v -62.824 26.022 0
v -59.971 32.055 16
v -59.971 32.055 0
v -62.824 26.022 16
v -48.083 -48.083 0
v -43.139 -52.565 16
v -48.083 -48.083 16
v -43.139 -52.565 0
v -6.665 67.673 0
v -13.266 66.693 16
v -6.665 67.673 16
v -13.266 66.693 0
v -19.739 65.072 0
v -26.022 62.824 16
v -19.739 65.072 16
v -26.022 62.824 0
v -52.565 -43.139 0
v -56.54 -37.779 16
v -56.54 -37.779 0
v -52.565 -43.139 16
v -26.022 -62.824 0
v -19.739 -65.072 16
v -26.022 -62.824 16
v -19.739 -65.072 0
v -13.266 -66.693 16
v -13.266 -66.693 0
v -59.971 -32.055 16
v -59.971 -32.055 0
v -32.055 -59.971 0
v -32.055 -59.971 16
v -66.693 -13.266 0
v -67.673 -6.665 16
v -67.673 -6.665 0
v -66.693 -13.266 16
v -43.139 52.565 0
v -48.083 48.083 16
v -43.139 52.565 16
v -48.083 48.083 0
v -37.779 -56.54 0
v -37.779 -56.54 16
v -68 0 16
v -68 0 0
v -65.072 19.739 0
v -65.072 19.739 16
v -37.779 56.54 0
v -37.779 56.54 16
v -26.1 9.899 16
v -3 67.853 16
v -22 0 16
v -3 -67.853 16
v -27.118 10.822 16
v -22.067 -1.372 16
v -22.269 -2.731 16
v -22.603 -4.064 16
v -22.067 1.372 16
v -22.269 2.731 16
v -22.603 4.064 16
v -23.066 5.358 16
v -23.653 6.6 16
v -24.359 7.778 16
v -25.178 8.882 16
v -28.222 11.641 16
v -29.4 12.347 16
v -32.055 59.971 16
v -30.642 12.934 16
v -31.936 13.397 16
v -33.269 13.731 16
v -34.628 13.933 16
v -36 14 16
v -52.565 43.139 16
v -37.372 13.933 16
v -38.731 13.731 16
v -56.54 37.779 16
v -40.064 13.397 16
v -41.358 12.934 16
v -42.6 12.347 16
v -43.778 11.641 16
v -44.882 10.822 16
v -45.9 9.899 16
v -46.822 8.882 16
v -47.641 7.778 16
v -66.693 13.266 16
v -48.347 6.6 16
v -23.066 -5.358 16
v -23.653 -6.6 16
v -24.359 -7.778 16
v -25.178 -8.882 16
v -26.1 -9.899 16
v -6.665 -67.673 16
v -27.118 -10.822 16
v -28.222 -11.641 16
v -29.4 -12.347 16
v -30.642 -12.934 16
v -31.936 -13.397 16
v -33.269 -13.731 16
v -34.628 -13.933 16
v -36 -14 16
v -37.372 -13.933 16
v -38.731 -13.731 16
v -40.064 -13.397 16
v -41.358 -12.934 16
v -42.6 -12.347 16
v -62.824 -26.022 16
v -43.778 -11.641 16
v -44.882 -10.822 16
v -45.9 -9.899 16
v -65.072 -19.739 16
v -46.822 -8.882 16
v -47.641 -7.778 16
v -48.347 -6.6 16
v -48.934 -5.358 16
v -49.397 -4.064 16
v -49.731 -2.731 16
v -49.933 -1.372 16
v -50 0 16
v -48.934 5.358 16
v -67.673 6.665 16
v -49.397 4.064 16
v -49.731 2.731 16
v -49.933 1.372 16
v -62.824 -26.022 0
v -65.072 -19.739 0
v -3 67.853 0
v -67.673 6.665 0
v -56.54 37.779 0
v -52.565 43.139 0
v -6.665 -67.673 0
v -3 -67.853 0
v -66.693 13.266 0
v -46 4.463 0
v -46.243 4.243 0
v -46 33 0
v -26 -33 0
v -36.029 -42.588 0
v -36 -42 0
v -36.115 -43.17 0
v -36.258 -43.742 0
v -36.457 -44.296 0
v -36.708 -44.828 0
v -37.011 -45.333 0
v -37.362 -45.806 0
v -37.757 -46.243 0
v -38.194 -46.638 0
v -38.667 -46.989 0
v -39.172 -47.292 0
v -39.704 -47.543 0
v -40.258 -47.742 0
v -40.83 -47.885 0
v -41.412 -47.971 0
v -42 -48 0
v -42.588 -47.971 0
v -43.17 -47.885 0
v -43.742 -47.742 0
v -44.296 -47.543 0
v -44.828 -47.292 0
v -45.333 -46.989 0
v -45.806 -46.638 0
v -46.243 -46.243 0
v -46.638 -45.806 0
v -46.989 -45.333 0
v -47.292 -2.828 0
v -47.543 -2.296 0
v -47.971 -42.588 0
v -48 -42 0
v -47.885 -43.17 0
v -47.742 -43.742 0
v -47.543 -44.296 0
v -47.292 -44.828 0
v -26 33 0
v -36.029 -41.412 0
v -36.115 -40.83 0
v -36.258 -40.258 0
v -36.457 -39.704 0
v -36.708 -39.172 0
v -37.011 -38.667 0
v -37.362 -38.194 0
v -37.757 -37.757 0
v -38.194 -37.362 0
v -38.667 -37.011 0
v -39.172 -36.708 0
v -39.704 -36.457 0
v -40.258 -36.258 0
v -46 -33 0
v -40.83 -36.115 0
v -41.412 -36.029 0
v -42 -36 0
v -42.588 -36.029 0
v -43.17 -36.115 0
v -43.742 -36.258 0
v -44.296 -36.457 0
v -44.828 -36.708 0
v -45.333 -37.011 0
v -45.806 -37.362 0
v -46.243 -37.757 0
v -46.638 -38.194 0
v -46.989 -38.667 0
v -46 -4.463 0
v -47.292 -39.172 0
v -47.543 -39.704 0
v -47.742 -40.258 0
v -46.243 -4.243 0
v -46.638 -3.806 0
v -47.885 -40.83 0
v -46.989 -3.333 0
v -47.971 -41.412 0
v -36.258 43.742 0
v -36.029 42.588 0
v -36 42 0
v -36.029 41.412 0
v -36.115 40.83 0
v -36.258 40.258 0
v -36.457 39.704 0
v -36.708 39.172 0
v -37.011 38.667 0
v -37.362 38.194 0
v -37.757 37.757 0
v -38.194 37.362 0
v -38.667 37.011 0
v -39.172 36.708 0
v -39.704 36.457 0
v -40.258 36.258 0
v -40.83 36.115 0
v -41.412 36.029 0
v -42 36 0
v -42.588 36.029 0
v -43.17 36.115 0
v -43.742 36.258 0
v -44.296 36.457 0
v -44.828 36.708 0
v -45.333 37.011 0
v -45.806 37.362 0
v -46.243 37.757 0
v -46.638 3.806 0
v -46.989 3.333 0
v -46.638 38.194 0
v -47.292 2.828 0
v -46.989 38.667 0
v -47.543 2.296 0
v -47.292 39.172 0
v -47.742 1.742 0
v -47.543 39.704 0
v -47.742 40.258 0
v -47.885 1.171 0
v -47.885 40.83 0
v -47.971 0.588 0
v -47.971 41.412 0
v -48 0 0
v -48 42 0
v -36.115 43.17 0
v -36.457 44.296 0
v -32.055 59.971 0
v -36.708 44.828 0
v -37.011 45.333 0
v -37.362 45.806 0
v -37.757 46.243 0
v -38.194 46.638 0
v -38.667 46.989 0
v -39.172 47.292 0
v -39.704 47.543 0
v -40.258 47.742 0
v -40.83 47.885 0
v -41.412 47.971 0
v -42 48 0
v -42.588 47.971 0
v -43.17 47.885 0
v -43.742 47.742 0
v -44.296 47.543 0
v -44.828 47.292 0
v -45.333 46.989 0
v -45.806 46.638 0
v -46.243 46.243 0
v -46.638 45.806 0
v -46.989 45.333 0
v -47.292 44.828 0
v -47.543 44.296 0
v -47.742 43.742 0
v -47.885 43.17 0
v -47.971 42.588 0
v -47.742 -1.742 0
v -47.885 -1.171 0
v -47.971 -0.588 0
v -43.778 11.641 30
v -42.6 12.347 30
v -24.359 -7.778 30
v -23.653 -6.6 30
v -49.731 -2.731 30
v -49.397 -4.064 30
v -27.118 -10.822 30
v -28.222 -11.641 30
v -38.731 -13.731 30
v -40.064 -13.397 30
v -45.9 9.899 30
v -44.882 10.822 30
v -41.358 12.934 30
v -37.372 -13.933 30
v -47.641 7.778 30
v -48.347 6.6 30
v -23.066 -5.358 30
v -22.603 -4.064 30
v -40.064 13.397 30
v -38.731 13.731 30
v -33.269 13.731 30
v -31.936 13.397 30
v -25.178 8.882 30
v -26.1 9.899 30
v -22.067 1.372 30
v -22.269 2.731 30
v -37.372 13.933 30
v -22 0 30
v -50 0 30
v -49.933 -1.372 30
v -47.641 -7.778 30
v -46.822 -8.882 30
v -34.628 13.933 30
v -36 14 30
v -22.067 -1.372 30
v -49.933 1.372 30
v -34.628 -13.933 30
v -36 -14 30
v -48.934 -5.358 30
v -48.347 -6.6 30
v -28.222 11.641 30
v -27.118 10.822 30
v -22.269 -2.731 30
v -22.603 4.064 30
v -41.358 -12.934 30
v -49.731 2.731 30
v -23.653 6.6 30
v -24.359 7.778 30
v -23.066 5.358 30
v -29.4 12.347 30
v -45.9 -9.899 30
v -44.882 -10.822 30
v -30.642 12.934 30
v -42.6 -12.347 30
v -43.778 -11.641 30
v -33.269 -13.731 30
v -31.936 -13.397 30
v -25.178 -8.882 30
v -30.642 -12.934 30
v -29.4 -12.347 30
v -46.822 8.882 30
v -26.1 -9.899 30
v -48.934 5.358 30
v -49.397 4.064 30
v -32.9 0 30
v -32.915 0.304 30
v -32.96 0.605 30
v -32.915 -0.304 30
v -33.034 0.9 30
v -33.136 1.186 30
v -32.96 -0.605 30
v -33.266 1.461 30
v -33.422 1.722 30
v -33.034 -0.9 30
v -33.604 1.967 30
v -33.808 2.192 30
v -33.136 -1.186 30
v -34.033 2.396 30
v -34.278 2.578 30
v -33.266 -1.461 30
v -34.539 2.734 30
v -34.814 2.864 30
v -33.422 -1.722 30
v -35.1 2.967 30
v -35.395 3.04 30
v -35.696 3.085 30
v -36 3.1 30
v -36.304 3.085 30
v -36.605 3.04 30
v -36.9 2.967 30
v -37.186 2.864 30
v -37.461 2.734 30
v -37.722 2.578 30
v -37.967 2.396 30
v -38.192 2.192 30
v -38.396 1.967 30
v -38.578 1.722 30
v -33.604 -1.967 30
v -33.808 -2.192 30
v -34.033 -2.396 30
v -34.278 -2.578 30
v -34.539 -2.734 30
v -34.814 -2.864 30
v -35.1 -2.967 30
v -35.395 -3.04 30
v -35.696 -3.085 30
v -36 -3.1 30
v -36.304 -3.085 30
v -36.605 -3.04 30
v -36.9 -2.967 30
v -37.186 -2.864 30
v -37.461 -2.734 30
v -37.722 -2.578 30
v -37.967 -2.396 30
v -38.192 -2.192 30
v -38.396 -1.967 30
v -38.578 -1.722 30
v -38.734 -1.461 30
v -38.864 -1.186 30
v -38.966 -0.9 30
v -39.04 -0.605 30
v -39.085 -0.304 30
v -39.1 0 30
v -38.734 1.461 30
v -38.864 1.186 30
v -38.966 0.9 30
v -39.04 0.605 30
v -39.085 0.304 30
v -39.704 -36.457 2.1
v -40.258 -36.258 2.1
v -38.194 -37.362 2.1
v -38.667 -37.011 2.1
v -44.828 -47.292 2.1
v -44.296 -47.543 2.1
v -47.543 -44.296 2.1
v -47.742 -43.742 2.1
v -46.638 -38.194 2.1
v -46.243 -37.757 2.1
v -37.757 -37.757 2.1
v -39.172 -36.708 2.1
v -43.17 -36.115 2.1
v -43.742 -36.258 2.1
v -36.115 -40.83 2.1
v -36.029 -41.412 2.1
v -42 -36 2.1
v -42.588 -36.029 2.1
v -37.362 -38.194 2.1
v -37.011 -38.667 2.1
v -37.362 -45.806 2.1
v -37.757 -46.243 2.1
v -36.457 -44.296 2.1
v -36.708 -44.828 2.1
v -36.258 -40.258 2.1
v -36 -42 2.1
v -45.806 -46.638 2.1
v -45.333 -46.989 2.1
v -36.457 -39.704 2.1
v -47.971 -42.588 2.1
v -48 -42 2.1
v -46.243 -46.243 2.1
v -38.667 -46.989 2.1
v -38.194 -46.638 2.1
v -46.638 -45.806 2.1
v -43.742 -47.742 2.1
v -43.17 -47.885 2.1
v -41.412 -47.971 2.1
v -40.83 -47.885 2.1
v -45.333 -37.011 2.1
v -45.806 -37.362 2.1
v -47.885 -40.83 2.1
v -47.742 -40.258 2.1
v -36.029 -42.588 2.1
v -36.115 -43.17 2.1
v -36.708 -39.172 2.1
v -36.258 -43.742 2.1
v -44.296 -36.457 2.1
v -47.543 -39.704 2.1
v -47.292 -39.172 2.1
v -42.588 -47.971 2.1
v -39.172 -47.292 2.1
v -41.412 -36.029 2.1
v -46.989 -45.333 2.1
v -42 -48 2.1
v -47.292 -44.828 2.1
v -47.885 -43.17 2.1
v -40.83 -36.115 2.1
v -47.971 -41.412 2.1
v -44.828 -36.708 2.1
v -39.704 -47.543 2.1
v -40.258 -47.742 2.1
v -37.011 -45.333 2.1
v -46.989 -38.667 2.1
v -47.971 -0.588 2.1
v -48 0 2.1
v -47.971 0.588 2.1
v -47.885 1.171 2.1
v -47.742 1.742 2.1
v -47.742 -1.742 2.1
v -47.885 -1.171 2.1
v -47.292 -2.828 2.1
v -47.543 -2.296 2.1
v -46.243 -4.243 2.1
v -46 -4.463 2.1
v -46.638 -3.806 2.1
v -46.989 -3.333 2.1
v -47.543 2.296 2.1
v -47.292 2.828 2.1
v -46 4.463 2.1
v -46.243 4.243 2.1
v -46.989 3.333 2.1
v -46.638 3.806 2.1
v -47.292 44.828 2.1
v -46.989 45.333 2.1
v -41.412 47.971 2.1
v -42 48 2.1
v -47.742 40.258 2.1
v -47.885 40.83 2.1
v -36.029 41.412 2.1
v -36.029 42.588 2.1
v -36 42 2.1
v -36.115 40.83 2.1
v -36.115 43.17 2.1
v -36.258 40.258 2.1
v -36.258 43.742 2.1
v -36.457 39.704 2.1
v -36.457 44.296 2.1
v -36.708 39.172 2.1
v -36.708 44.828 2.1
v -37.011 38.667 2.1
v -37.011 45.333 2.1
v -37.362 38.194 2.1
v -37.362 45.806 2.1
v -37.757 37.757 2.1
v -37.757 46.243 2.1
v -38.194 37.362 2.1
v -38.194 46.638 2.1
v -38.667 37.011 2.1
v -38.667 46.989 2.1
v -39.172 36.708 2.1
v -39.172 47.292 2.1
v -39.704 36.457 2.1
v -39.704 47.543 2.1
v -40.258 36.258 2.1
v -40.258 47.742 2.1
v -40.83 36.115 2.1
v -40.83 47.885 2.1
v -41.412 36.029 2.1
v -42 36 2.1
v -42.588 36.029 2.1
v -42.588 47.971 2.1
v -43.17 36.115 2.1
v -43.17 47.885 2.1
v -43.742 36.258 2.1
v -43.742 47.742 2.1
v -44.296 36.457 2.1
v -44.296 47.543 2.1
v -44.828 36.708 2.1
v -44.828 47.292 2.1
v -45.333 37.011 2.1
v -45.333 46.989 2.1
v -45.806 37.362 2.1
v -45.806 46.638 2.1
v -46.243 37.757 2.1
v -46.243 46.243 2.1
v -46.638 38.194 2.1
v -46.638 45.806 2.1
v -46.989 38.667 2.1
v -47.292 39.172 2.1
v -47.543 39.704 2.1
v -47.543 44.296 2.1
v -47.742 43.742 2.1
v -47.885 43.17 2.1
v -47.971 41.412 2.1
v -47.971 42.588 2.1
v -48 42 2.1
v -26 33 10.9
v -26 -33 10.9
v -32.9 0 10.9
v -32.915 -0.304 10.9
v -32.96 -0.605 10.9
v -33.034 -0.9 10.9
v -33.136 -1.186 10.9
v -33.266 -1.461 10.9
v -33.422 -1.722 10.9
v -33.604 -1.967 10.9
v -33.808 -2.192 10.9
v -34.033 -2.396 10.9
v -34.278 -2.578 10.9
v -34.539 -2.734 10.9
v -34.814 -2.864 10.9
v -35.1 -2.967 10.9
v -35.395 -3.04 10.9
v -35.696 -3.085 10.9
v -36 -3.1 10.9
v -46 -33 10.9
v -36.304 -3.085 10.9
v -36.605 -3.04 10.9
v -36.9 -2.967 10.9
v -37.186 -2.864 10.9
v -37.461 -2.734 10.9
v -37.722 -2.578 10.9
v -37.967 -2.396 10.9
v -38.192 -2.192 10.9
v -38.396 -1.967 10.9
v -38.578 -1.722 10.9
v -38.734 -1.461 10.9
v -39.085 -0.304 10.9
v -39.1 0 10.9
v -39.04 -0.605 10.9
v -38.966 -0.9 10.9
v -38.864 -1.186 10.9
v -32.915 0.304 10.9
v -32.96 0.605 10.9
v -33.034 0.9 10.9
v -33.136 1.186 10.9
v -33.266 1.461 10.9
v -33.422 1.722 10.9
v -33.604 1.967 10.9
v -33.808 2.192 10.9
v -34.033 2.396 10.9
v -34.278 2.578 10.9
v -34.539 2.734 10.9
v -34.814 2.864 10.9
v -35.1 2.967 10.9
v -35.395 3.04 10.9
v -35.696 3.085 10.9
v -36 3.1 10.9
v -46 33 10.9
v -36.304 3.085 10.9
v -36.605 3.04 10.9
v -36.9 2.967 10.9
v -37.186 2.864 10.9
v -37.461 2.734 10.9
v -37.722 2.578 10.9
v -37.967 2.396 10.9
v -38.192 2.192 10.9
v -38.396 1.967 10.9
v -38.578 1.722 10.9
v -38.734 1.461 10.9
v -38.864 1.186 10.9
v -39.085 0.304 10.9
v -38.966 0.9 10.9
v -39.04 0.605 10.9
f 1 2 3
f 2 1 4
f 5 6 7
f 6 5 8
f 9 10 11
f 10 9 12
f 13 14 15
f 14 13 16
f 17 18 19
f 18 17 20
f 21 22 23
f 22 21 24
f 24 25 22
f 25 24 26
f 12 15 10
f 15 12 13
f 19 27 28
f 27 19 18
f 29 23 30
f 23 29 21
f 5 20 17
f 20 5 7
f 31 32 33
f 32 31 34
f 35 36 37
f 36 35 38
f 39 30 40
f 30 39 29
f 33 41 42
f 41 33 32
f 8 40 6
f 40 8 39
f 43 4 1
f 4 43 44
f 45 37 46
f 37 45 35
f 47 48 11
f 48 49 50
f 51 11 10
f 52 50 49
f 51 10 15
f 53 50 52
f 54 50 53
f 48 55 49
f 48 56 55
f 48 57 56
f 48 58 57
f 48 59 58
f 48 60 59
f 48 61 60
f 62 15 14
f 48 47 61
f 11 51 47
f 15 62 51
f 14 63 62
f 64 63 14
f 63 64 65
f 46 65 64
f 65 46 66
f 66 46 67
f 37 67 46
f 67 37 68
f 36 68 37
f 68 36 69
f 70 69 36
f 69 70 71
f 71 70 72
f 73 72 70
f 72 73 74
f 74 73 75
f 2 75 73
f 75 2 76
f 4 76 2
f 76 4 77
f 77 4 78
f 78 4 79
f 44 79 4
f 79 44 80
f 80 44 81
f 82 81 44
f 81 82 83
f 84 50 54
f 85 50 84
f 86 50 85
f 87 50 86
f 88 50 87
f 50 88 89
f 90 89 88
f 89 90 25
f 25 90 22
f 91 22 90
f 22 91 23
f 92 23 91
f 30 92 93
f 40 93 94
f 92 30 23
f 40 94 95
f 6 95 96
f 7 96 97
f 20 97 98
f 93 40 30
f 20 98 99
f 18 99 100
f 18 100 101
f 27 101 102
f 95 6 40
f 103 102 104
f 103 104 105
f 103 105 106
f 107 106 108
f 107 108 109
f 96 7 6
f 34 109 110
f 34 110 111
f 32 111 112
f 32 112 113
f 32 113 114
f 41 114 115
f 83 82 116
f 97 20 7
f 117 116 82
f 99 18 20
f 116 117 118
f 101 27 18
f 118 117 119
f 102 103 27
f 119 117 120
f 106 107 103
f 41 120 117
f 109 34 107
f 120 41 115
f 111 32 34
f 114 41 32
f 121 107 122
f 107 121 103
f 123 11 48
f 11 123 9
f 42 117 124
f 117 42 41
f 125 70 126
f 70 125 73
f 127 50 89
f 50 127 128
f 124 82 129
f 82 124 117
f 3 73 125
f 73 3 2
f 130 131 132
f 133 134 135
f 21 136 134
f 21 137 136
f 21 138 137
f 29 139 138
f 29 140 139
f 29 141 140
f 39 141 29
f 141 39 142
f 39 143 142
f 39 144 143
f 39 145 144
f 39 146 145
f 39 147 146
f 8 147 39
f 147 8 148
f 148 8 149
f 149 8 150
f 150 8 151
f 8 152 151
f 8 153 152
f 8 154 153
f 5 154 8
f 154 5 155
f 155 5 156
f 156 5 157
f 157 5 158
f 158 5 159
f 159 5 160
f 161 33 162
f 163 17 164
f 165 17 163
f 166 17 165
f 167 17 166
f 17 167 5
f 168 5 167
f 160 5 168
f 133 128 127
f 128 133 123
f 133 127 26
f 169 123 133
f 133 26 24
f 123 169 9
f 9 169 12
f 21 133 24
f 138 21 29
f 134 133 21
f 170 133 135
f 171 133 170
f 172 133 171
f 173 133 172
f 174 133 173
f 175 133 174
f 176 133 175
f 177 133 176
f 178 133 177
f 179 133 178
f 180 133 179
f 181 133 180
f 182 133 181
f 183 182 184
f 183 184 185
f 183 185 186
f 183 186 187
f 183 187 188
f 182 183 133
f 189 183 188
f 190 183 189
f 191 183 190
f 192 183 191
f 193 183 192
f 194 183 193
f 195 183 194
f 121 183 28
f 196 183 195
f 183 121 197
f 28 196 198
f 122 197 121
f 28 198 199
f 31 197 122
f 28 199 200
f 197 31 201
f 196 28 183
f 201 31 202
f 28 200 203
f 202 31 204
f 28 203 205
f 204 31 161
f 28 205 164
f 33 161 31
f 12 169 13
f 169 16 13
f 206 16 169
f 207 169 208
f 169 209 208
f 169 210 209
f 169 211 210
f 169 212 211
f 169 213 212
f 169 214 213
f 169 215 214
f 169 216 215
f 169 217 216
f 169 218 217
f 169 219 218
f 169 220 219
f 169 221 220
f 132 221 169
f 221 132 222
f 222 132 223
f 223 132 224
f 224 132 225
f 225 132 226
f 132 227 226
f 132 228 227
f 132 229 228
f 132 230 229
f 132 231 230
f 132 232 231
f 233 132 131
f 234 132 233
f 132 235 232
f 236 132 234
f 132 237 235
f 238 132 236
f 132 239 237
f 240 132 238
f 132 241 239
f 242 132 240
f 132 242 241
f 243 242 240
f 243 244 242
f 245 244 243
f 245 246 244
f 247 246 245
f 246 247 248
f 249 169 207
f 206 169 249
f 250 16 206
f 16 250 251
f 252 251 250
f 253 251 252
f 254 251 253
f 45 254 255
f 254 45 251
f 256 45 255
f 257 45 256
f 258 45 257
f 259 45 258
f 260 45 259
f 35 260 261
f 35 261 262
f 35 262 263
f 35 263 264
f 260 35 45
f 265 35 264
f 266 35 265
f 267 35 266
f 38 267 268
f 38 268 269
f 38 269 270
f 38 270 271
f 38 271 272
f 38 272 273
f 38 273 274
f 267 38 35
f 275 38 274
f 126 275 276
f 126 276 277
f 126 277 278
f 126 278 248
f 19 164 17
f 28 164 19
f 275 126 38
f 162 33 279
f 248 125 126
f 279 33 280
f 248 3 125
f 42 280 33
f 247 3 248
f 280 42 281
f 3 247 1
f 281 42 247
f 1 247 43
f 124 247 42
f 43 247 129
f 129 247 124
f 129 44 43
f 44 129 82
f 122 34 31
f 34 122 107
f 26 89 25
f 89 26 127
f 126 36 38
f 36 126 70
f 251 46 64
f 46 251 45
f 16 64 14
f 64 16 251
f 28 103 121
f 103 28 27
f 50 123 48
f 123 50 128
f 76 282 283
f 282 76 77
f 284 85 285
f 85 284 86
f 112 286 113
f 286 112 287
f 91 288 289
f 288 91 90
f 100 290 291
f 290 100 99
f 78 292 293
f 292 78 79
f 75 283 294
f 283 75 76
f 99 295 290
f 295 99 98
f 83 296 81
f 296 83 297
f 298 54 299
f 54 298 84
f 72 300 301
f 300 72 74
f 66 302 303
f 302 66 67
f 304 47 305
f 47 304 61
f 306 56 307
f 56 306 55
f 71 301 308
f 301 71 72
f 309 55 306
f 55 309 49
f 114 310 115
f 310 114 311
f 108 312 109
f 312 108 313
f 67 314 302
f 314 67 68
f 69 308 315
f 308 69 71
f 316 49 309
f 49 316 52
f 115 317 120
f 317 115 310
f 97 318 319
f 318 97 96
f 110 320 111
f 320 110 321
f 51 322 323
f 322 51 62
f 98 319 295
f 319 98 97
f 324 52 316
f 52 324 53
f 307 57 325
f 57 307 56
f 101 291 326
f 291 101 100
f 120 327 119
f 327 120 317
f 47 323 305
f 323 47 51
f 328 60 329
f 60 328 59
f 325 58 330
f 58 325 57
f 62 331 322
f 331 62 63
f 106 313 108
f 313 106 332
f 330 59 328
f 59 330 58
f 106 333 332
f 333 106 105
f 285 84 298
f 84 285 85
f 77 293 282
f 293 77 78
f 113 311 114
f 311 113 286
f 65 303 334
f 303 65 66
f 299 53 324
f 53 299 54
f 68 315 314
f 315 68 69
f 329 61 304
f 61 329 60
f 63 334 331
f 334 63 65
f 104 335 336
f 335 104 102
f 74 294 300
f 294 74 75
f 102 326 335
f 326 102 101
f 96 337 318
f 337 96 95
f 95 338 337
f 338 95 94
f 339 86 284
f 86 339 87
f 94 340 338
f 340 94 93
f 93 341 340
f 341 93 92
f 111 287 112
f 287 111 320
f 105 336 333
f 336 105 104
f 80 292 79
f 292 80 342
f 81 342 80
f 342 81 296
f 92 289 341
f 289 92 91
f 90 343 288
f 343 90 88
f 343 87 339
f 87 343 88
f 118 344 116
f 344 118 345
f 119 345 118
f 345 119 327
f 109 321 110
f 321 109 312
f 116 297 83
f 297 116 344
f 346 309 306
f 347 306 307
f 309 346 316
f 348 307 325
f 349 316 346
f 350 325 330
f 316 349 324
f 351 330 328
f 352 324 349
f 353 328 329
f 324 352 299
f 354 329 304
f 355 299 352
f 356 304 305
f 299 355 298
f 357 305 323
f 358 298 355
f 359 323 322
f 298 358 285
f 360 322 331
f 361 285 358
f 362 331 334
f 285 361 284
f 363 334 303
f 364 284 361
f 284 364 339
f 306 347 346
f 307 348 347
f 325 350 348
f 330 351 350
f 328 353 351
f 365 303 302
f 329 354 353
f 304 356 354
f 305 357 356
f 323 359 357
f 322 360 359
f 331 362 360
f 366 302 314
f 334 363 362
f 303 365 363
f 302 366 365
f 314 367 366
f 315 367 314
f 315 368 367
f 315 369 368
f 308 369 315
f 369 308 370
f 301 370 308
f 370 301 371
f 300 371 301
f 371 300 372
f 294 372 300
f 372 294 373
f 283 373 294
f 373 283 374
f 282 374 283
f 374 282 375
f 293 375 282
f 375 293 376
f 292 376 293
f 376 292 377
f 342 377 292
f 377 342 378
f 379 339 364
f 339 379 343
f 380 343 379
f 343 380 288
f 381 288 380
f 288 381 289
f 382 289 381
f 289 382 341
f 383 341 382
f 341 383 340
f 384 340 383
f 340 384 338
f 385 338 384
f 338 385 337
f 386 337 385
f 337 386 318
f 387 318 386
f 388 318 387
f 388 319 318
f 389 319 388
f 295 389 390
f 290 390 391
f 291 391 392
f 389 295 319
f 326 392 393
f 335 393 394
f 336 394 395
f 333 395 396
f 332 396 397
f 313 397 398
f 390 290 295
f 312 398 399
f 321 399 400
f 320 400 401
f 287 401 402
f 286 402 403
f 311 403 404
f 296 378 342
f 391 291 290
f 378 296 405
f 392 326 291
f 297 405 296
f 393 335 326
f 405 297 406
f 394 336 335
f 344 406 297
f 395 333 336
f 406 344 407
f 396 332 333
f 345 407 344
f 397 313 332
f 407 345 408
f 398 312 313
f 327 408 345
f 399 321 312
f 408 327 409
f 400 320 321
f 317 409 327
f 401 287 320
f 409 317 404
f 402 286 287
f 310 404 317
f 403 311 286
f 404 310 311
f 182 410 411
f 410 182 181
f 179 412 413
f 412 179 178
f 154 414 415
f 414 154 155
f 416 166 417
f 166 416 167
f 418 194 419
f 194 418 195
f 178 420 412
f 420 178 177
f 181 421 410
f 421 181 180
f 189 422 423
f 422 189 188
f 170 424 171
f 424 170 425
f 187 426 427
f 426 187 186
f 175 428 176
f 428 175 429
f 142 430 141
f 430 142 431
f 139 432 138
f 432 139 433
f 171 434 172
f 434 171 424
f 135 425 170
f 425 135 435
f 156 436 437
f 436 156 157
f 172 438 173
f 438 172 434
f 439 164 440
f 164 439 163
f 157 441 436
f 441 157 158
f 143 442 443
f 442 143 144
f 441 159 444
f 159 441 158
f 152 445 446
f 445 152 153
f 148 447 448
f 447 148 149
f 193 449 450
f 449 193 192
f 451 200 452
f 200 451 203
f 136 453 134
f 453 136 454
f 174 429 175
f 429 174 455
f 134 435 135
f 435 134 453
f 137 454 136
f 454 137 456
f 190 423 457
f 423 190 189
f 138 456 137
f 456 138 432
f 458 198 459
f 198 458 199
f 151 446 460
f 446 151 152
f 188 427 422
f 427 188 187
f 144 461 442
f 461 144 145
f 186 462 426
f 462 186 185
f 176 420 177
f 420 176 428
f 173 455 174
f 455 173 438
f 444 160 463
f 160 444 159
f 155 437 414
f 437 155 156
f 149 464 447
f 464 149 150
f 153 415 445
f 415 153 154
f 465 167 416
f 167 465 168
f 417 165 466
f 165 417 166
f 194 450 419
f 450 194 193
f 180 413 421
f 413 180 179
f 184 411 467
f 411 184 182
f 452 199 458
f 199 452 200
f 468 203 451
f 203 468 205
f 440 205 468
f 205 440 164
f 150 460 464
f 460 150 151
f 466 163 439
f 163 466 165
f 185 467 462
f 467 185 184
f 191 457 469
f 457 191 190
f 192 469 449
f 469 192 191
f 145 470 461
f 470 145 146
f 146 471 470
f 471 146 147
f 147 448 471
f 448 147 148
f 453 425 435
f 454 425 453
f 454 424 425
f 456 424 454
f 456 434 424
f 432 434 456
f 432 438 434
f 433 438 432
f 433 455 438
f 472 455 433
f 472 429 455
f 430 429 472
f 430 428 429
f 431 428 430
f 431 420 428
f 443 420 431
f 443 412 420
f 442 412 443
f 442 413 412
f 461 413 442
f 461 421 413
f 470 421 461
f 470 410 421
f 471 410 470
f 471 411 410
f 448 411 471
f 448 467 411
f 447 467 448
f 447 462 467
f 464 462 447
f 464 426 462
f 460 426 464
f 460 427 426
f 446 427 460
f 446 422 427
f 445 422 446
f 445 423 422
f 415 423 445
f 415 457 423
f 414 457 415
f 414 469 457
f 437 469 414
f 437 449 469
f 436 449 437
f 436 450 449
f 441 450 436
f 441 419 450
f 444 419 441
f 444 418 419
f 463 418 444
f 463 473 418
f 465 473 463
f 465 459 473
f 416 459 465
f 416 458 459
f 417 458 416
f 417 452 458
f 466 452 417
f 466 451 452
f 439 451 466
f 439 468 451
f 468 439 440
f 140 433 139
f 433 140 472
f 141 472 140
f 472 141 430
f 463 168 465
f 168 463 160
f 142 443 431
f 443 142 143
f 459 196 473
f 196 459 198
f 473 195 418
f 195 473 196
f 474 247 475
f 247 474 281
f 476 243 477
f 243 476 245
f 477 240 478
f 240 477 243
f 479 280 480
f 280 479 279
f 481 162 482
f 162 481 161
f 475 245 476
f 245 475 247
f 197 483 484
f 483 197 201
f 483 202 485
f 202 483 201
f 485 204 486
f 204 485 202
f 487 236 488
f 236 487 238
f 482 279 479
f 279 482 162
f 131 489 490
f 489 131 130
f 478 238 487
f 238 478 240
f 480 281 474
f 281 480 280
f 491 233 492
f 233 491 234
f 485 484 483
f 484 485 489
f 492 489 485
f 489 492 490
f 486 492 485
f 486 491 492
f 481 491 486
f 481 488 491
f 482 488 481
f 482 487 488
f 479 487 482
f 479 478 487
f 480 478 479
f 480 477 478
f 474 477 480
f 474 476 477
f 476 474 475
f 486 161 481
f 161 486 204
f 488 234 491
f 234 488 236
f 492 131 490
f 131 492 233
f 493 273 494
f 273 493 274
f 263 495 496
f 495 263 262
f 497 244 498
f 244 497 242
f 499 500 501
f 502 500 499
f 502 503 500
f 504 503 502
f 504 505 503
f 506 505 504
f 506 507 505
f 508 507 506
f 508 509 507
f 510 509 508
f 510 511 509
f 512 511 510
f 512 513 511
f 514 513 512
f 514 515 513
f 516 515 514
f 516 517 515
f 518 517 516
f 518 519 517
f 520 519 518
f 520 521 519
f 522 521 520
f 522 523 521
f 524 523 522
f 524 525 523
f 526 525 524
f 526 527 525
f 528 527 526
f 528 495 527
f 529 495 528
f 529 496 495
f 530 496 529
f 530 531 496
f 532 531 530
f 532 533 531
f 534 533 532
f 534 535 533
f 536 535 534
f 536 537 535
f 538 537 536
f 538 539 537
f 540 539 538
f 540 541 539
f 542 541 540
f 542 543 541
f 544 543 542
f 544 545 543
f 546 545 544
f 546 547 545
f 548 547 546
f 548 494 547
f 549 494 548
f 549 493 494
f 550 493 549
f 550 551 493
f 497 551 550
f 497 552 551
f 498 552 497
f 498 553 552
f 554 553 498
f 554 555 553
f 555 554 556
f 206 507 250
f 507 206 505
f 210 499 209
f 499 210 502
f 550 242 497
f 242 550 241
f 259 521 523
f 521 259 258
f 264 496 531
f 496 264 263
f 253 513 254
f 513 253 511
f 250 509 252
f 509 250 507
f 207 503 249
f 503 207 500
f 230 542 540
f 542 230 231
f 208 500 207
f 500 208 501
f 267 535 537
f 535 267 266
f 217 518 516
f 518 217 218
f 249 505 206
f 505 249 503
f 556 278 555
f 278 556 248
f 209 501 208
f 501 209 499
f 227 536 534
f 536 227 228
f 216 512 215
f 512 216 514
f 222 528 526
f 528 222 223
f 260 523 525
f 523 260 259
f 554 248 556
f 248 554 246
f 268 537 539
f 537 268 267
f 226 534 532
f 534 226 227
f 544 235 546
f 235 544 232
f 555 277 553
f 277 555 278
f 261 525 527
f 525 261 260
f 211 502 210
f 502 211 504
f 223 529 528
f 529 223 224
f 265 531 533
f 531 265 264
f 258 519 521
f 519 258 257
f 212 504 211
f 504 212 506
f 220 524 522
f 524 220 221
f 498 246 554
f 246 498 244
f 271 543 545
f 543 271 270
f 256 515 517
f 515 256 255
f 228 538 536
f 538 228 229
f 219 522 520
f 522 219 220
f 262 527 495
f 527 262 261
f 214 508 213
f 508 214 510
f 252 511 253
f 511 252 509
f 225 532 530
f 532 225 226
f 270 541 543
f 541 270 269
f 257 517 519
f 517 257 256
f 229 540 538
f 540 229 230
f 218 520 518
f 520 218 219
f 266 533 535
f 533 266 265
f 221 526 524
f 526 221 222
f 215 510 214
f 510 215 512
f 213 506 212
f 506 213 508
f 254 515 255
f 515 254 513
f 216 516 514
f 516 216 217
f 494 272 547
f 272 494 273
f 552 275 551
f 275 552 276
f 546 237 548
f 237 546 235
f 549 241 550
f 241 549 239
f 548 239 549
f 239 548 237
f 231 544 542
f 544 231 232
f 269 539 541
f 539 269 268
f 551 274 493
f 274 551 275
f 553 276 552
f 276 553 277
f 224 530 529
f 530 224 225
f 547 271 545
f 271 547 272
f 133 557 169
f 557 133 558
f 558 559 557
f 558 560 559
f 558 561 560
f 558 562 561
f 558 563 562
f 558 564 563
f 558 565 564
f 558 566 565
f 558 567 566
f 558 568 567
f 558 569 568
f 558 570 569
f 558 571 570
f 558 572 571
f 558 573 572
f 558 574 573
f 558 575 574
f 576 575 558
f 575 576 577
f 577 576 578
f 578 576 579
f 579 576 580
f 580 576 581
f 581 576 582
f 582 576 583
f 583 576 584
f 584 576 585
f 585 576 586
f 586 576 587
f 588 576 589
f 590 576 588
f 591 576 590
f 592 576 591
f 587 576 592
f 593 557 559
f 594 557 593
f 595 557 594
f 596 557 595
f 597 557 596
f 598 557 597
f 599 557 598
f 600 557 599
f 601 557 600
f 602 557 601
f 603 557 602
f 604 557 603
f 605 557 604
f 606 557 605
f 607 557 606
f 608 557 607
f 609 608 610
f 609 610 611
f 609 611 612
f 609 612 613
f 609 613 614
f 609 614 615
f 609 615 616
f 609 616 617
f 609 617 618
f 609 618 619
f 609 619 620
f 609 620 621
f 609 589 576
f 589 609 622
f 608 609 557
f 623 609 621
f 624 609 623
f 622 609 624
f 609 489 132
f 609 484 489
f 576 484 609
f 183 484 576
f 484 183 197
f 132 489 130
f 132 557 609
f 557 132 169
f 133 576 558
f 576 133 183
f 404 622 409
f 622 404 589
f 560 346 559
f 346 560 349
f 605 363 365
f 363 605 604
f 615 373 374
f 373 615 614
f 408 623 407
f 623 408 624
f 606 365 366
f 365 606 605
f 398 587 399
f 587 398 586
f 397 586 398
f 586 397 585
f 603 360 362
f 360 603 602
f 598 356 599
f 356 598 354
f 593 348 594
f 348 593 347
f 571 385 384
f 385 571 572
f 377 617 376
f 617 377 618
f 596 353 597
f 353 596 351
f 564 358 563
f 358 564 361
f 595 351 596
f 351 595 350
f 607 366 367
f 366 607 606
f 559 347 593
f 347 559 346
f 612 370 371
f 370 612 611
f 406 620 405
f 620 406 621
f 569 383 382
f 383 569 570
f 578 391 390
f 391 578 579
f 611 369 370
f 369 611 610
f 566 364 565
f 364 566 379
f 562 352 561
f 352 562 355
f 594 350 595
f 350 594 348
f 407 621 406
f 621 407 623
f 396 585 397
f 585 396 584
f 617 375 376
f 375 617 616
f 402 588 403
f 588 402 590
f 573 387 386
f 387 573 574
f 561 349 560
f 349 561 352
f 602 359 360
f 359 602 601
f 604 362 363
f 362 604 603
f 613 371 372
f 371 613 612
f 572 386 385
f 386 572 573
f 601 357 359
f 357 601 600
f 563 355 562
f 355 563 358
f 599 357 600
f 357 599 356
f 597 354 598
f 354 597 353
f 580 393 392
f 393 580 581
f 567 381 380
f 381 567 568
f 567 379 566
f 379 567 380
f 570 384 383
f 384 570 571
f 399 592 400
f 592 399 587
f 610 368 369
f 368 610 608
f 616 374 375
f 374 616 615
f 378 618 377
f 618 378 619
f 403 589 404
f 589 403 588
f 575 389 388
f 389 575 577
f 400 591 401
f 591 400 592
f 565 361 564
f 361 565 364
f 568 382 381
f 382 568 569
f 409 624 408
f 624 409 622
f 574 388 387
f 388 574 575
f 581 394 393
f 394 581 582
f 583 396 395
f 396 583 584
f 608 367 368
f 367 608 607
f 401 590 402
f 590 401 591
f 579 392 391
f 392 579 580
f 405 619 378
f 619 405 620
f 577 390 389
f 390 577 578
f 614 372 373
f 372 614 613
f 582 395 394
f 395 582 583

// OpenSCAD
// Jimmy Part 01a: Left Split D-Shaped Half-Platform Foot (18650 Bay + Ankle Socket)
$fn = 64;

module left_foot_half_platform() {
    difference() {
        union() {
            // Left half-cylinder sole (X < -3 mm, radius 68 mm, height 16 mm)
            intersection() {
                cylinder(h = 16, r = 68);
                translate([-75, -75, 0]) cube([72, 150, 20]);
            }
            // Ankle STS3215 clevis boss
            translate([-36, 0, 16]) cylinder(h = 14, r = 14);
        }
        // Bottom 18650 single-cell battery pocket (19x66 mm)
        translate([-46, -33, -0.1]) cube([20, 66, 11]);
        // M3 ankle servo horn bore + wire routing channel
        translate([-36, 0, -0.1]) cylinder(h = 32, d = 6.2);
        // 3x bottom silicone pad recesses
        for (y = [-42, 0, 42])
            translate([-42, y, -0.1]) cylinder(h = 2.2, d = 12);
    }
}

left_foot_half_platform();
